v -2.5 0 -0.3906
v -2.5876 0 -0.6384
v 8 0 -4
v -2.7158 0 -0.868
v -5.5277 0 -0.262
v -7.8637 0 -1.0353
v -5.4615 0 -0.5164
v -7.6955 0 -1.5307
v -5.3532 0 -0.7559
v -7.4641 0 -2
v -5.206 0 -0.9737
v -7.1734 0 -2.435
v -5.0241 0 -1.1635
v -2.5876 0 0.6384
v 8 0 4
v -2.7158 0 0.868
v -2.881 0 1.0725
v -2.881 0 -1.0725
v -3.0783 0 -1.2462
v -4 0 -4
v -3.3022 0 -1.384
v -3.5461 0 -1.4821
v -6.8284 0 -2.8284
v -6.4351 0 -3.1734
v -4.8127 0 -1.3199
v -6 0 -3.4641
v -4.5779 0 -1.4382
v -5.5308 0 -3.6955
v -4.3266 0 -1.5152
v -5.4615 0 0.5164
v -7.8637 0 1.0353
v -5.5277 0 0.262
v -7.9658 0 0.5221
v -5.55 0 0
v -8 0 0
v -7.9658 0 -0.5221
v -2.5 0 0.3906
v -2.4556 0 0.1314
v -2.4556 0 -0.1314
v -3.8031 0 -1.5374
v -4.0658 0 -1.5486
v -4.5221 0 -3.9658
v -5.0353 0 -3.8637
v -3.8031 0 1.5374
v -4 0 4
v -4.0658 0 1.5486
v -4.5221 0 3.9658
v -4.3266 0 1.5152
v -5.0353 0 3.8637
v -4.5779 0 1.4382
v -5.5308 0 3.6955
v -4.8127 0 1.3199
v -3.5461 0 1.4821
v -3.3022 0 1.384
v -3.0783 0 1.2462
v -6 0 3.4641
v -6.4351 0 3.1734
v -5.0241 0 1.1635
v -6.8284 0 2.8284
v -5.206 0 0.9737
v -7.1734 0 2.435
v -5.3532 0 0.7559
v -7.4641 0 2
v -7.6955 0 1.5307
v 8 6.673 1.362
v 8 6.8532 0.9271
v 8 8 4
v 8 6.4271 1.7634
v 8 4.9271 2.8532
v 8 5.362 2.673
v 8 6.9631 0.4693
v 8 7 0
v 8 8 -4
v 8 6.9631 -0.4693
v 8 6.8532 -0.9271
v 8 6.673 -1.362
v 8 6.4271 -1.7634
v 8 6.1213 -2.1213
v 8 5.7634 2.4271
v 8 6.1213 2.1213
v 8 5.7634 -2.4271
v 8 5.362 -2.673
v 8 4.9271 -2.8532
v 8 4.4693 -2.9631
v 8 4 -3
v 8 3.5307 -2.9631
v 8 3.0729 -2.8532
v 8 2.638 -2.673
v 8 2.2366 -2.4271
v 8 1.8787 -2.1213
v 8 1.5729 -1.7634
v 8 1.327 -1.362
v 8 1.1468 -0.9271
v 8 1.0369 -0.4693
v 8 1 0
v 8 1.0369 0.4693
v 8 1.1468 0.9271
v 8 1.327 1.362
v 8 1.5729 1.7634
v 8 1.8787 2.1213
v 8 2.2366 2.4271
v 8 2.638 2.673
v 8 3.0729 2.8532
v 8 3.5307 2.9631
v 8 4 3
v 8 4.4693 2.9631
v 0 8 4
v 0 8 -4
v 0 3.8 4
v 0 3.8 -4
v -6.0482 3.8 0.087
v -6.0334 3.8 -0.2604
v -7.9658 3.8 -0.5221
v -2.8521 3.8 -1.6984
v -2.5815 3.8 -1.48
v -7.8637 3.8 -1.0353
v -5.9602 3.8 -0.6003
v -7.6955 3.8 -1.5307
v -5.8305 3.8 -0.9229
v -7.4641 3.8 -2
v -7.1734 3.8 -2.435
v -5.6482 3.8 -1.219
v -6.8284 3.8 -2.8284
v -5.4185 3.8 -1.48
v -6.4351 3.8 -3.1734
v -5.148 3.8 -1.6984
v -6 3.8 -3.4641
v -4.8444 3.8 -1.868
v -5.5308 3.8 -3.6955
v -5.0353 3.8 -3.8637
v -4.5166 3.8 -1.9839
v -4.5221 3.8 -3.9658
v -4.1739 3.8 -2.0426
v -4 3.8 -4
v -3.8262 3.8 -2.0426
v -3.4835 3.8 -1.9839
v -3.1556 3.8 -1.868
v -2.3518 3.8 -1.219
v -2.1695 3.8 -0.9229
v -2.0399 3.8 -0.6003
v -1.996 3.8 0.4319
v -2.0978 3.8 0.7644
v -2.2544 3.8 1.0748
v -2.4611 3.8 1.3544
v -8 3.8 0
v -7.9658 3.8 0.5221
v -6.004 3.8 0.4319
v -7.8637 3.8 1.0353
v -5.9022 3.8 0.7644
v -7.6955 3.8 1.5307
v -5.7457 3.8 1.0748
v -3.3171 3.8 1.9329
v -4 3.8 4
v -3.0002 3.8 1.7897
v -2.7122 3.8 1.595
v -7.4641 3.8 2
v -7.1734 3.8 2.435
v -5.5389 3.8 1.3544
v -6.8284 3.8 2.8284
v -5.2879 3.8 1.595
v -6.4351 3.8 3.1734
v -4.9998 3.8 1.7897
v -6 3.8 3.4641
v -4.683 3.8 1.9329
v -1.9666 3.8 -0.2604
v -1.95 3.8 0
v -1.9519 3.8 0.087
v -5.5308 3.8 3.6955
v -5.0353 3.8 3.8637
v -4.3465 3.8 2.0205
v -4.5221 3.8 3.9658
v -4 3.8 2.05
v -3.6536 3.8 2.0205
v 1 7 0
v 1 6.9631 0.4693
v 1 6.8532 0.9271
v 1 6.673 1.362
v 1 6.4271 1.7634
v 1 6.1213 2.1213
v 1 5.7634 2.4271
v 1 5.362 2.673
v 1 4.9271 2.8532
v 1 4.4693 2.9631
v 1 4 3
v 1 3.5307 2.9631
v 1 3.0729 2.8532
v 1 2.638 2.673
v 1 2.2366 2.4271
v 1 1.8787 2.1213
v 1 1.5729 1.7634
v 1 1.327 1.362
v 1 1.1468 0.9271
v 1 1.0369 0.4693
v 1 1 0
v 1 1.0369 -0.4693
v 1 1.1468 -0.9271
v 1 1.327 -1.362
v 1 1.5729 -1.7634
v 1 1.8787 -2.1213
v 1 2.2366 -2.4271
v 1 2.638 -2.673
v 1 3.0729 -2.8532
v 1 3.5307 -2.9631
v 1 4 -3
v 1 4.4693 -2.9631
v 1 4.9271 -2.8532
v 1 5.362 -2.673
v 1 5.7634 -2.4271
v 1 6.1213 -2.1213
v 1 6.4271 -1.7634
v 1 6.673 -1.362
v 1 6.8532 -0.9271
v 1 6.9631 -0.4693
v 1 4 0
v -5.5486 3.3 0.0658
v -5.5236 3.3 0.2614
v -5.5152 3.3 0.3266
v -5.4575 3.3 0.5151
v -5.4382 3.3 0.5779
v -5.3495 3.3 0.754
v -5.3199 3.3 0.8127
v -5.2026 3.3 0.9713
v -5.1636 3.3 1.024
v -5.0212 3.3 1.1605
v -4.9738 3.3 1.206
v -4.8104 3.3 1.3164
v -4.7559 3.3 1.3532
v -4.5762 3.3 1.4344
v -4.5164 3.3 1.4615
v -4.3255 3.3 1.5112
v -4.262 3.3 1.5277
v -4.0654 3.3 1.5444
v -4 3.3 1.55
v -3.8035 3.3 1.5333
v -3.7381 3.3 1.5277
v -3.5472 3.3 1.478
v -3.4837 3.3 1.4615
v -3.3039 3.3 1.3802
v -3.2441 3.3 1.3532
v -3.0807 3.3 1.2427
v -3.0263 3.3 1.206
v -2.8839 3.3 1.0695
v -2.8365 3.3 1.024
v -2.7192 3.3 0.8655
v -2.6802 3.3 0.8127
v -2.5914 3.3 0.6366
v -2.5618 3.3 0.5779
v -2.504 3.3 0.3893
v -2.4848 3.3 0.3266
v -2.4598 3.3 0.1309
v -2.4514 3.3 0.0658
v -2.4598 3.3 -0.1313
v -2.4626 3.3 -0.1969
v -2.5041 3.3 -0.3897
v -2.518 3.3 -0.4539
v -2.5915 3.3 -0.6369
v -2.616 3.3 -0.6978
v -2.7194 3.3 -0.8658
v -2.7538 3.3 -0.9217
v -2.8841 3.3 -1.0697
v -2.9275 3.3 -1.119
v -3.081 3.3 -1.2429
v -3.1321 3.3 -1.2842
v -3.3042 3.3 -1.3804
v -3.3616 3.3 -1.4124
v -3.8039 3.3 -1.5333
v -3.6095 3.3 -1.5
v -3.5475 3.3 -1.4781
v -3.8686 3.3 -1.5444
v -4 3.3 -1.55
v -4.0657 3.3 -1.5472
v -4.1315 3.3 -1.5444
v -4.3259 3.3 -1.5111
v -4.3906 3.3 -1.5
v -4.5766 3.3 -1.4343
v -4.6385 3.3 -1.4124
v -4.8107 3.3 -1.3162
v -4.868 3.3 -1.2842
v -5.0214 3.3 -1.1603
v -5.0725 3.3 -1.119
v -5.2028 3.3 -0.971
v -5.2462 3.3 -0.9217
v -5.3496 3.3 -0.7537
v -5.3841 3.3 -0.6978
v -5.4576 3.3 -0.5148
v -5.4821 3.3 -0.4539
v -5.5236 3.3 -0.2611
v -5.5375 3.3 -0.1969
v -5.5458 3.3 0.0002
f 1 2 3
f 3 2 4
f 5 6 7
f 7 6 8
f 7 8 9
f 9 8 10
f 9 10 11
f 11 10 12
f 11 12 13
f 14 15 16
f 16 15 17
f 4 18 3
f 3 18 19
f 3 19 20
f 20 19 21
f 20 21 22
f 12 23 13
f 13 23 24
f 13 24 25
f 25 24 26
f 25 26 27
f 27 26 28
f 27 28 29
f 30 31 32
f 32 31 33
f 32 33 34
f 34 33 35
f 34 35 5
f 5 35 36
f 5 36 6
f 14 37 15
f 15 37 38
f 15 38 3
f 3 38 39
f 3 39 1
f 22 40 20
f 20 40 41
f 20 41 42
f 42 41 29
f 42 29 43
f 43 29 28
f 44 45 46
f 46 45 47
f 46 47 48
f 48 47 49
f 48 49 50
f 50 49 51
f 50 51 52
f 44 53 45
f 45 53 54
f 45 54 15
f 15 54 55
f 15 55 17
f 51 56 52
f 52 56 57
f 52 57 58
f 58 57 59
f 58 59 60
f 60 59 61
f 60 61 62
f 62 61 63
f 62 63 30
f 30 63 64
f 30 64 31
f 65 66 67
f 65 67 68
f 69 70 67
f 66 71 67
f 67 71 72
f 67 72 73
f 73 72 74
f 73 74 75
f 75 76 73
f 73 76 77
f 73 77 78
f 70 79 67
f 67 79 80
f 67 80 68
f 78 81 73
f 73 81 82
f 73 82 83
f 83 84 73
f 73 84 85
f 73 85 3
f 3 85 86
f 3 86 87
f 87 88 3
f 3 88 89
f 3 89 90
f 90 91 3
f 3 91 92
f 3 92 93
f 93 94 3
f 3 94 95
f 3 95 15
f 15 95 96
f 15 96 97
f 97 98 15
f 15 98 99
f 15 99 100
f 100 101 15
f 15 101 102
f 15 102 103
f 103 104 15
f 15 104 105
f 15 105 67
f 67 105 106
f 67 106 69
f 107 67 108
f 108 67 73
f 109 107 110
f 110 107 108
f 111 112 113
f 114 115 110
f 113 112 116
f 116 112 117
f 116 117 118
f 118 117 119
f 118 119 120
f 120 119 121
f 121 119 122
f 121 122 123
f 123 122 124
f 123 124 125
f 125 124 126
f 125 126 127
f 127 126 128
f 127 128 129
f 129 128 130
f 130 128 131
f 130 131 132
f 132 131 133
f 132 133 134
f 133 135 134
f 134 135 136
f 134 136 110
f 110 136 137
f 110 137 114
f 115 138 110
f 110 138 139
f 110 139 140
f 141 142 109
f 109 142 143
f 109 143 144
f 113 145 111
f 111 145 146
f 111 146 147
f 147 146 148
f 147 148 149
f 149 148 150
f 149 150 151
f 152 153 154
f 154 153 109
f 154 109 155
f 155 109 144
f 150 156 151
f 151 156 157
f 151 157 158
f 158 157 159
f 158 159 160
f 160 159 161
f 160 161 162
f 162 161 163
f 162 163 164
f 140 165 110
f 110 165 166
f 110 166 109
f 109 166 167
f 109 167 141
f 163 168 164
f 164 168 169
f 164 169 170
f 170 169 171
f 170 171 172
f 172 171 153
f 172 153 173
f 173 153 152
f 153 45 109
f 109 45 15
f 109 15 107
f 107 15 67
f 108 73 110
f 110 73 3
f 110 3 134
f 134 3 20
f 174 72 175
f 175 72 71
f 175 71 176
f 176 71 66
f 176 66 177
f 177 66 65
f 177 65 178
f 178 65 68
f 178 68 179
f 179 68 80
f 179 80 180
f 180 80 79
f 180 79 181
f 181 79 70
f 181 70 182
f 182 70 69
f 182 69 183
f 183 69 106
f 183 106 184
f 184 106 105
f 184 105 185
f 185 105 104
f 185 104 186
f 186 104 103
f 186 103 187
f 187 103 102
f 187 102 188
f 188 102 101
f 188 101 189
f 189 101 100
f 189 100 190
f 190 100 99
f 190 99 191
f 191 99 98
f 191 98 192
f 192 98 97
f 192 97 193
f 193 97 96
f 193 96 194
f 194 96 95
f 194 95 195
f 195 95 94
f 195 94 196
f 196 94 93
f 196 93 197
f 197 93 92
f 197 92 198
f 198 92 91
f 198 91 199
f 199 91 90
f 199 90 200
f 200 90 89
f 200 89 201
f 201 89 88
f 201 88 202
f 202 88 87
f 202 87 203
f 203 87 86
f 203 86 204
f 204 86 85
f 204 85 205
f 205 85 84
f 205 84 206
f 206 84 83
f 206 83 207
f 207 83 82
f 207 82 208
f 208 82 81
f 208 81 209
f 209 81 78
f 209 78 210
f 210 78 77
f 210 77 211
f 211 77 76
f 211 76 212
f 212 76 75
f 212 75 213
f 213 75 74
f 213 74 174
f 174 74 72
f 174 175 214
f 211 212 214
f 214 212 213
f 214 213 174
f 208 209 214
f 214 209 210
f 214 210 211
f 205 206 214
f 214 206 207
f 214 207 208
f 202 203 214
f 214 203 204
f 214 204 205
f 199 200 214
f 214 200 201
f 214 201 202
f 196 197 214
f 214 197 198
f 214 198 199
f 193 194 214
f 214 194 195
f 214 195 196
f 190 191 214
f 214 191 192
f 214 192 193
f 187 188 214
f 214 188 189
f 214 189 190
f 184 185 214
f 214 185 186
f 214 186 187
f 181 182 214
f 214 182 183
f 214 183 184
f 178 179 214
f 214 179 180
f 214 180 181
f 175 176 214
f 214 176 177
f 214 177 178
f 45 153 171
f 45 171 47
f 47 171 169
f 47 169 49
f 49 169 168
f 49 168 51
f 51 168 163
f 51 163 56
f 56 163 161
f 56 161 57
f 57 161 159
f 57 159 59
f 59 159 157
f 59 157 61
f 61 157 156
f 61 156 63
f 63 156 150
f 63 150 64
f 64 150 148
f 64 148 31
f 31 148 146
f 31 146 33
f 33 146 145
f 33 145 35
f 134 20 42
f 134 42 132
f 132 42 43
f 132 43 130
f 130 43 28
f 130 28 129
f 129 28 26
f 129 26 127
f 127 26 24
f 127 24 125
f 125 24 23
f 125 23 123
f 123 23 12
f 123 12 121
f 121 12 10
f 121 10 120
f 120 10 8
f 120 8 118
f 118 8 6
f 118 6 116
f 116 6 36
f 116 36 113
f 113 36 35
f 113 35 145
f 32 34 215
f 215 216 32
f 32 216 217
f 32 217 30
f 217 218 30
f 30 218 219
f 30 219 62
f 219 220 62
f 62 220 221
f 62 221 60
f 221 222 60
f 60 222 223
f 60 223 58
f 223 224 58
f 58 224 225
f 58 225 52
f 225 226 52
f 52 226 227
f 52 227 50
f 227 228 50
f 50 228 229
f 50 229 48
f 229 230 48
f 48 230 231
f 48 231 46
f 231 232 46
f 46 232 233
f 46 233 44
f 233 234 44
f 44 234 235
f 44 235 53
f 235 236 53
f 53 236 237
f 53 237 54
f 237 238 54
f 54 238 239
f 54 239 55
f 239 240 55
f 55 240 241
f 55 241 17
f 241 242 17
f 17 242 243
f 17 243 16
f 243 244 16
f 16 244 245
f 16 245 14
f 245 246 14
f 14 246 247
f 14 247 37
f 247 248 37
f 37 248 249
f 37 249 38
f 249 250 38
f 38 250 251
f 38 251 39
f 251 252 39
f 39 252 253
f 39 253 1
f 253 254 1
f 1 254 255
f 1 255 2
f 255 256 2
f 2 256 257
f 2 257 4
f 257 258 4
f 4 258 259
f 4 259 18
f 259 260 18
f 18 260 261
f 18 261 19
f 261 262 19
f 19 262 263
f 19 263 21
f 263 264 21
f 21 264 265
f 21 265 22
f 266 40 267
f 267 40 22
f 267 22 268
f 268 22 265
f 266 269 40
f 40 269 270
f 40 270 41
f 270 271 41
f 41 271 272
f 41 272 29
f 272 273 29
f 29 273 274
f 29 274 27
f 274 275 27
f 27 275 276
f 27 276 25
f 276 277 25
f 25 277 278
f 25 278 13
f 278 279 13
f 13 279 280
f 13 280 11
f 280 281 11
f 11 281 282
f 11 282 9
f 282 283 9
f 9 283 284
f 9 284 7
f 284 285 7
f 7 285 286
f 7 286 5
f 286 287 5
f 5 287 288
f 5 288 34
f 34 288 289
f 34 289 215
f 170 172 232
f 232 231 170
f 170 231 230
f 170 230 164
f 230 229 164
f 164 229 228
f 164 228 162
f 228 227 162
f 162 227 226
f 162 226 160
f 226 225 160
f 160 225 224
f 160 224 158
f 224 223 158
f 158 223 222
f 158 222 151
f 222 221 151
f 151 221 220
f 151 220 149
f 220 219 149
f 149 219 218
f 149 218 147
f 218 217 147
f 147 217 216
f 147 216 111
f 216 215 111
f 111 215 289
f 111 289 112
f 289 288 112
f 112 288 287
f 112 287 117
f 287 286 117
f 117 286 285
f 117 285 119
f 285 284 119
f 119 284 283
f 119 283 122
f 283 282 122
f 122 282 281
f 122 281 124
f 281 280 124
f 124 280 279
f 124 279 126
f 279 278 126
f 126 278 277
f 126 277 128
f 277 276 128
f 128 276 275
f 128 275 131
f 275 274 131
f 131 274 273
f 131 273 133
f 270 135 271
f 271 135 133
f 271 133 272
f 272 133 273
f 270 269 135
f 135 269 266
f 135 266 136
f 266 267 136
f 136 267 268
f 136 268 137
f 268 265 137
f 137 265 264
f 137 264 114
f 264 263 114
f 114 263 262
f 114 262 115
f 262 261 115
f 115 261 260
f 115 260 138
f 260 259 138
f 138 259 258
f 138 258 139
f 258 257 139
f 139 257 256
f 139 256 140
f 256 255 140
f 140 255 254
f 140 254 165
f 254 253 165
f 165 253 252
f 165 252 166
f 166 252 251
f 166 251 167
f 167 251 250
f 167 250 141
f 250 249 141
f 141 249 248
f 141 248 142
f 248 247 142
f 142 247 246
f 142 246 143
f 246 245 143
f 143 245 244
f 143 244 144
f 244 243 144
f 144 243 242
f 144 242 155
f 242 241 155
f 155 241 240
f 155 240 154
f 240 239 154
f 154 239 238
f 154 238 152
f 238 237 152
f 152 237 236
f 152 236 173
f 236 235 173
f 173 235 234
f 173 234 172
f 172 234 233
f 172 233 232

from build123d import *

# Parameters (mm, degrees)
AUFSATZ_LINEAR_AUSTRAGEN1_DEPTH = 4
SKIZZE2_R                       = 3
SCHNITT_LINEAR_AUSTRAGEN1_DEPTH = 7
VERRUNDUNG1_R                   = 4
SKIZZE3_R                       = 1.55
SCHNITT_LINEAR_AUSTRAGEN2_DEPTH = 10.881295462
FASE1_SIZE                      = 0.5


with BuildPart() as part:
    # Skizze1 → Aufsatz-Linear austragen1 (new, symmetric)
    with BuildSketch(Plane.XY):
        Polygon((-8, 0), (8, 0), (8, 8), (0, 8), (0, 3.8), (-8, 3.8), align=None)
    extrude(amount=AUFSATZ_LINEAR_AUSTRAGEN1_DEPTH, both=True)

    # Skizze2 → Schnitt-Linear austragen1 (cut)
    with BuildSketch(Plane(origin=(8, 0, 0), x_dir=(0, 0, -1), z_dir=(1, 0, 0))):
        with Locations(Location((0, 4, 0), (0, 0, 90))):
            Circle(SKIZZE2_R)
    extrude(amount=-SCHNITT_LINEAR_AUSTRAGEN1_DEPTH, mode=Mode.SUBTRACT)

    # Verrundung1
    verrundung1_edges = [part.edges().sort_by_distance(p)[0] for p in [
        (-8, 1.9, -4),
        (-8, 1.9, 4),
    ]]
    fillet(verrundung1_edges, radius=VERRUNDUNG1_R - 0.0001)  # a hair under: the kernel refuses the full size

    # Skizze3 → Schnitt-Linear austragen2 (cut, through all)
    with BuildSketch(Plane(origin=(0, 3.8, 0), x_dir=(1, 0, 0), z_dir=(0, 1, 0))):
        with Locations(Location((-4, 0, 0), (0, 0, 180))):
            Circle(SKIZZE3_R)
    extrude(amount=-SCHNITT_LINEAR_AUSTRAGEN2_DEPTH, mode=Mode.SUBTRACT)

    # Fase1
    fase1_edges = [part.edges().sort_by_distance(p)[0] for p in [
        (-2.45, 3.8, 0),
    ]]
    chamfer(fase1_edges, length=FASE1_SIZE)


solid = part.part
